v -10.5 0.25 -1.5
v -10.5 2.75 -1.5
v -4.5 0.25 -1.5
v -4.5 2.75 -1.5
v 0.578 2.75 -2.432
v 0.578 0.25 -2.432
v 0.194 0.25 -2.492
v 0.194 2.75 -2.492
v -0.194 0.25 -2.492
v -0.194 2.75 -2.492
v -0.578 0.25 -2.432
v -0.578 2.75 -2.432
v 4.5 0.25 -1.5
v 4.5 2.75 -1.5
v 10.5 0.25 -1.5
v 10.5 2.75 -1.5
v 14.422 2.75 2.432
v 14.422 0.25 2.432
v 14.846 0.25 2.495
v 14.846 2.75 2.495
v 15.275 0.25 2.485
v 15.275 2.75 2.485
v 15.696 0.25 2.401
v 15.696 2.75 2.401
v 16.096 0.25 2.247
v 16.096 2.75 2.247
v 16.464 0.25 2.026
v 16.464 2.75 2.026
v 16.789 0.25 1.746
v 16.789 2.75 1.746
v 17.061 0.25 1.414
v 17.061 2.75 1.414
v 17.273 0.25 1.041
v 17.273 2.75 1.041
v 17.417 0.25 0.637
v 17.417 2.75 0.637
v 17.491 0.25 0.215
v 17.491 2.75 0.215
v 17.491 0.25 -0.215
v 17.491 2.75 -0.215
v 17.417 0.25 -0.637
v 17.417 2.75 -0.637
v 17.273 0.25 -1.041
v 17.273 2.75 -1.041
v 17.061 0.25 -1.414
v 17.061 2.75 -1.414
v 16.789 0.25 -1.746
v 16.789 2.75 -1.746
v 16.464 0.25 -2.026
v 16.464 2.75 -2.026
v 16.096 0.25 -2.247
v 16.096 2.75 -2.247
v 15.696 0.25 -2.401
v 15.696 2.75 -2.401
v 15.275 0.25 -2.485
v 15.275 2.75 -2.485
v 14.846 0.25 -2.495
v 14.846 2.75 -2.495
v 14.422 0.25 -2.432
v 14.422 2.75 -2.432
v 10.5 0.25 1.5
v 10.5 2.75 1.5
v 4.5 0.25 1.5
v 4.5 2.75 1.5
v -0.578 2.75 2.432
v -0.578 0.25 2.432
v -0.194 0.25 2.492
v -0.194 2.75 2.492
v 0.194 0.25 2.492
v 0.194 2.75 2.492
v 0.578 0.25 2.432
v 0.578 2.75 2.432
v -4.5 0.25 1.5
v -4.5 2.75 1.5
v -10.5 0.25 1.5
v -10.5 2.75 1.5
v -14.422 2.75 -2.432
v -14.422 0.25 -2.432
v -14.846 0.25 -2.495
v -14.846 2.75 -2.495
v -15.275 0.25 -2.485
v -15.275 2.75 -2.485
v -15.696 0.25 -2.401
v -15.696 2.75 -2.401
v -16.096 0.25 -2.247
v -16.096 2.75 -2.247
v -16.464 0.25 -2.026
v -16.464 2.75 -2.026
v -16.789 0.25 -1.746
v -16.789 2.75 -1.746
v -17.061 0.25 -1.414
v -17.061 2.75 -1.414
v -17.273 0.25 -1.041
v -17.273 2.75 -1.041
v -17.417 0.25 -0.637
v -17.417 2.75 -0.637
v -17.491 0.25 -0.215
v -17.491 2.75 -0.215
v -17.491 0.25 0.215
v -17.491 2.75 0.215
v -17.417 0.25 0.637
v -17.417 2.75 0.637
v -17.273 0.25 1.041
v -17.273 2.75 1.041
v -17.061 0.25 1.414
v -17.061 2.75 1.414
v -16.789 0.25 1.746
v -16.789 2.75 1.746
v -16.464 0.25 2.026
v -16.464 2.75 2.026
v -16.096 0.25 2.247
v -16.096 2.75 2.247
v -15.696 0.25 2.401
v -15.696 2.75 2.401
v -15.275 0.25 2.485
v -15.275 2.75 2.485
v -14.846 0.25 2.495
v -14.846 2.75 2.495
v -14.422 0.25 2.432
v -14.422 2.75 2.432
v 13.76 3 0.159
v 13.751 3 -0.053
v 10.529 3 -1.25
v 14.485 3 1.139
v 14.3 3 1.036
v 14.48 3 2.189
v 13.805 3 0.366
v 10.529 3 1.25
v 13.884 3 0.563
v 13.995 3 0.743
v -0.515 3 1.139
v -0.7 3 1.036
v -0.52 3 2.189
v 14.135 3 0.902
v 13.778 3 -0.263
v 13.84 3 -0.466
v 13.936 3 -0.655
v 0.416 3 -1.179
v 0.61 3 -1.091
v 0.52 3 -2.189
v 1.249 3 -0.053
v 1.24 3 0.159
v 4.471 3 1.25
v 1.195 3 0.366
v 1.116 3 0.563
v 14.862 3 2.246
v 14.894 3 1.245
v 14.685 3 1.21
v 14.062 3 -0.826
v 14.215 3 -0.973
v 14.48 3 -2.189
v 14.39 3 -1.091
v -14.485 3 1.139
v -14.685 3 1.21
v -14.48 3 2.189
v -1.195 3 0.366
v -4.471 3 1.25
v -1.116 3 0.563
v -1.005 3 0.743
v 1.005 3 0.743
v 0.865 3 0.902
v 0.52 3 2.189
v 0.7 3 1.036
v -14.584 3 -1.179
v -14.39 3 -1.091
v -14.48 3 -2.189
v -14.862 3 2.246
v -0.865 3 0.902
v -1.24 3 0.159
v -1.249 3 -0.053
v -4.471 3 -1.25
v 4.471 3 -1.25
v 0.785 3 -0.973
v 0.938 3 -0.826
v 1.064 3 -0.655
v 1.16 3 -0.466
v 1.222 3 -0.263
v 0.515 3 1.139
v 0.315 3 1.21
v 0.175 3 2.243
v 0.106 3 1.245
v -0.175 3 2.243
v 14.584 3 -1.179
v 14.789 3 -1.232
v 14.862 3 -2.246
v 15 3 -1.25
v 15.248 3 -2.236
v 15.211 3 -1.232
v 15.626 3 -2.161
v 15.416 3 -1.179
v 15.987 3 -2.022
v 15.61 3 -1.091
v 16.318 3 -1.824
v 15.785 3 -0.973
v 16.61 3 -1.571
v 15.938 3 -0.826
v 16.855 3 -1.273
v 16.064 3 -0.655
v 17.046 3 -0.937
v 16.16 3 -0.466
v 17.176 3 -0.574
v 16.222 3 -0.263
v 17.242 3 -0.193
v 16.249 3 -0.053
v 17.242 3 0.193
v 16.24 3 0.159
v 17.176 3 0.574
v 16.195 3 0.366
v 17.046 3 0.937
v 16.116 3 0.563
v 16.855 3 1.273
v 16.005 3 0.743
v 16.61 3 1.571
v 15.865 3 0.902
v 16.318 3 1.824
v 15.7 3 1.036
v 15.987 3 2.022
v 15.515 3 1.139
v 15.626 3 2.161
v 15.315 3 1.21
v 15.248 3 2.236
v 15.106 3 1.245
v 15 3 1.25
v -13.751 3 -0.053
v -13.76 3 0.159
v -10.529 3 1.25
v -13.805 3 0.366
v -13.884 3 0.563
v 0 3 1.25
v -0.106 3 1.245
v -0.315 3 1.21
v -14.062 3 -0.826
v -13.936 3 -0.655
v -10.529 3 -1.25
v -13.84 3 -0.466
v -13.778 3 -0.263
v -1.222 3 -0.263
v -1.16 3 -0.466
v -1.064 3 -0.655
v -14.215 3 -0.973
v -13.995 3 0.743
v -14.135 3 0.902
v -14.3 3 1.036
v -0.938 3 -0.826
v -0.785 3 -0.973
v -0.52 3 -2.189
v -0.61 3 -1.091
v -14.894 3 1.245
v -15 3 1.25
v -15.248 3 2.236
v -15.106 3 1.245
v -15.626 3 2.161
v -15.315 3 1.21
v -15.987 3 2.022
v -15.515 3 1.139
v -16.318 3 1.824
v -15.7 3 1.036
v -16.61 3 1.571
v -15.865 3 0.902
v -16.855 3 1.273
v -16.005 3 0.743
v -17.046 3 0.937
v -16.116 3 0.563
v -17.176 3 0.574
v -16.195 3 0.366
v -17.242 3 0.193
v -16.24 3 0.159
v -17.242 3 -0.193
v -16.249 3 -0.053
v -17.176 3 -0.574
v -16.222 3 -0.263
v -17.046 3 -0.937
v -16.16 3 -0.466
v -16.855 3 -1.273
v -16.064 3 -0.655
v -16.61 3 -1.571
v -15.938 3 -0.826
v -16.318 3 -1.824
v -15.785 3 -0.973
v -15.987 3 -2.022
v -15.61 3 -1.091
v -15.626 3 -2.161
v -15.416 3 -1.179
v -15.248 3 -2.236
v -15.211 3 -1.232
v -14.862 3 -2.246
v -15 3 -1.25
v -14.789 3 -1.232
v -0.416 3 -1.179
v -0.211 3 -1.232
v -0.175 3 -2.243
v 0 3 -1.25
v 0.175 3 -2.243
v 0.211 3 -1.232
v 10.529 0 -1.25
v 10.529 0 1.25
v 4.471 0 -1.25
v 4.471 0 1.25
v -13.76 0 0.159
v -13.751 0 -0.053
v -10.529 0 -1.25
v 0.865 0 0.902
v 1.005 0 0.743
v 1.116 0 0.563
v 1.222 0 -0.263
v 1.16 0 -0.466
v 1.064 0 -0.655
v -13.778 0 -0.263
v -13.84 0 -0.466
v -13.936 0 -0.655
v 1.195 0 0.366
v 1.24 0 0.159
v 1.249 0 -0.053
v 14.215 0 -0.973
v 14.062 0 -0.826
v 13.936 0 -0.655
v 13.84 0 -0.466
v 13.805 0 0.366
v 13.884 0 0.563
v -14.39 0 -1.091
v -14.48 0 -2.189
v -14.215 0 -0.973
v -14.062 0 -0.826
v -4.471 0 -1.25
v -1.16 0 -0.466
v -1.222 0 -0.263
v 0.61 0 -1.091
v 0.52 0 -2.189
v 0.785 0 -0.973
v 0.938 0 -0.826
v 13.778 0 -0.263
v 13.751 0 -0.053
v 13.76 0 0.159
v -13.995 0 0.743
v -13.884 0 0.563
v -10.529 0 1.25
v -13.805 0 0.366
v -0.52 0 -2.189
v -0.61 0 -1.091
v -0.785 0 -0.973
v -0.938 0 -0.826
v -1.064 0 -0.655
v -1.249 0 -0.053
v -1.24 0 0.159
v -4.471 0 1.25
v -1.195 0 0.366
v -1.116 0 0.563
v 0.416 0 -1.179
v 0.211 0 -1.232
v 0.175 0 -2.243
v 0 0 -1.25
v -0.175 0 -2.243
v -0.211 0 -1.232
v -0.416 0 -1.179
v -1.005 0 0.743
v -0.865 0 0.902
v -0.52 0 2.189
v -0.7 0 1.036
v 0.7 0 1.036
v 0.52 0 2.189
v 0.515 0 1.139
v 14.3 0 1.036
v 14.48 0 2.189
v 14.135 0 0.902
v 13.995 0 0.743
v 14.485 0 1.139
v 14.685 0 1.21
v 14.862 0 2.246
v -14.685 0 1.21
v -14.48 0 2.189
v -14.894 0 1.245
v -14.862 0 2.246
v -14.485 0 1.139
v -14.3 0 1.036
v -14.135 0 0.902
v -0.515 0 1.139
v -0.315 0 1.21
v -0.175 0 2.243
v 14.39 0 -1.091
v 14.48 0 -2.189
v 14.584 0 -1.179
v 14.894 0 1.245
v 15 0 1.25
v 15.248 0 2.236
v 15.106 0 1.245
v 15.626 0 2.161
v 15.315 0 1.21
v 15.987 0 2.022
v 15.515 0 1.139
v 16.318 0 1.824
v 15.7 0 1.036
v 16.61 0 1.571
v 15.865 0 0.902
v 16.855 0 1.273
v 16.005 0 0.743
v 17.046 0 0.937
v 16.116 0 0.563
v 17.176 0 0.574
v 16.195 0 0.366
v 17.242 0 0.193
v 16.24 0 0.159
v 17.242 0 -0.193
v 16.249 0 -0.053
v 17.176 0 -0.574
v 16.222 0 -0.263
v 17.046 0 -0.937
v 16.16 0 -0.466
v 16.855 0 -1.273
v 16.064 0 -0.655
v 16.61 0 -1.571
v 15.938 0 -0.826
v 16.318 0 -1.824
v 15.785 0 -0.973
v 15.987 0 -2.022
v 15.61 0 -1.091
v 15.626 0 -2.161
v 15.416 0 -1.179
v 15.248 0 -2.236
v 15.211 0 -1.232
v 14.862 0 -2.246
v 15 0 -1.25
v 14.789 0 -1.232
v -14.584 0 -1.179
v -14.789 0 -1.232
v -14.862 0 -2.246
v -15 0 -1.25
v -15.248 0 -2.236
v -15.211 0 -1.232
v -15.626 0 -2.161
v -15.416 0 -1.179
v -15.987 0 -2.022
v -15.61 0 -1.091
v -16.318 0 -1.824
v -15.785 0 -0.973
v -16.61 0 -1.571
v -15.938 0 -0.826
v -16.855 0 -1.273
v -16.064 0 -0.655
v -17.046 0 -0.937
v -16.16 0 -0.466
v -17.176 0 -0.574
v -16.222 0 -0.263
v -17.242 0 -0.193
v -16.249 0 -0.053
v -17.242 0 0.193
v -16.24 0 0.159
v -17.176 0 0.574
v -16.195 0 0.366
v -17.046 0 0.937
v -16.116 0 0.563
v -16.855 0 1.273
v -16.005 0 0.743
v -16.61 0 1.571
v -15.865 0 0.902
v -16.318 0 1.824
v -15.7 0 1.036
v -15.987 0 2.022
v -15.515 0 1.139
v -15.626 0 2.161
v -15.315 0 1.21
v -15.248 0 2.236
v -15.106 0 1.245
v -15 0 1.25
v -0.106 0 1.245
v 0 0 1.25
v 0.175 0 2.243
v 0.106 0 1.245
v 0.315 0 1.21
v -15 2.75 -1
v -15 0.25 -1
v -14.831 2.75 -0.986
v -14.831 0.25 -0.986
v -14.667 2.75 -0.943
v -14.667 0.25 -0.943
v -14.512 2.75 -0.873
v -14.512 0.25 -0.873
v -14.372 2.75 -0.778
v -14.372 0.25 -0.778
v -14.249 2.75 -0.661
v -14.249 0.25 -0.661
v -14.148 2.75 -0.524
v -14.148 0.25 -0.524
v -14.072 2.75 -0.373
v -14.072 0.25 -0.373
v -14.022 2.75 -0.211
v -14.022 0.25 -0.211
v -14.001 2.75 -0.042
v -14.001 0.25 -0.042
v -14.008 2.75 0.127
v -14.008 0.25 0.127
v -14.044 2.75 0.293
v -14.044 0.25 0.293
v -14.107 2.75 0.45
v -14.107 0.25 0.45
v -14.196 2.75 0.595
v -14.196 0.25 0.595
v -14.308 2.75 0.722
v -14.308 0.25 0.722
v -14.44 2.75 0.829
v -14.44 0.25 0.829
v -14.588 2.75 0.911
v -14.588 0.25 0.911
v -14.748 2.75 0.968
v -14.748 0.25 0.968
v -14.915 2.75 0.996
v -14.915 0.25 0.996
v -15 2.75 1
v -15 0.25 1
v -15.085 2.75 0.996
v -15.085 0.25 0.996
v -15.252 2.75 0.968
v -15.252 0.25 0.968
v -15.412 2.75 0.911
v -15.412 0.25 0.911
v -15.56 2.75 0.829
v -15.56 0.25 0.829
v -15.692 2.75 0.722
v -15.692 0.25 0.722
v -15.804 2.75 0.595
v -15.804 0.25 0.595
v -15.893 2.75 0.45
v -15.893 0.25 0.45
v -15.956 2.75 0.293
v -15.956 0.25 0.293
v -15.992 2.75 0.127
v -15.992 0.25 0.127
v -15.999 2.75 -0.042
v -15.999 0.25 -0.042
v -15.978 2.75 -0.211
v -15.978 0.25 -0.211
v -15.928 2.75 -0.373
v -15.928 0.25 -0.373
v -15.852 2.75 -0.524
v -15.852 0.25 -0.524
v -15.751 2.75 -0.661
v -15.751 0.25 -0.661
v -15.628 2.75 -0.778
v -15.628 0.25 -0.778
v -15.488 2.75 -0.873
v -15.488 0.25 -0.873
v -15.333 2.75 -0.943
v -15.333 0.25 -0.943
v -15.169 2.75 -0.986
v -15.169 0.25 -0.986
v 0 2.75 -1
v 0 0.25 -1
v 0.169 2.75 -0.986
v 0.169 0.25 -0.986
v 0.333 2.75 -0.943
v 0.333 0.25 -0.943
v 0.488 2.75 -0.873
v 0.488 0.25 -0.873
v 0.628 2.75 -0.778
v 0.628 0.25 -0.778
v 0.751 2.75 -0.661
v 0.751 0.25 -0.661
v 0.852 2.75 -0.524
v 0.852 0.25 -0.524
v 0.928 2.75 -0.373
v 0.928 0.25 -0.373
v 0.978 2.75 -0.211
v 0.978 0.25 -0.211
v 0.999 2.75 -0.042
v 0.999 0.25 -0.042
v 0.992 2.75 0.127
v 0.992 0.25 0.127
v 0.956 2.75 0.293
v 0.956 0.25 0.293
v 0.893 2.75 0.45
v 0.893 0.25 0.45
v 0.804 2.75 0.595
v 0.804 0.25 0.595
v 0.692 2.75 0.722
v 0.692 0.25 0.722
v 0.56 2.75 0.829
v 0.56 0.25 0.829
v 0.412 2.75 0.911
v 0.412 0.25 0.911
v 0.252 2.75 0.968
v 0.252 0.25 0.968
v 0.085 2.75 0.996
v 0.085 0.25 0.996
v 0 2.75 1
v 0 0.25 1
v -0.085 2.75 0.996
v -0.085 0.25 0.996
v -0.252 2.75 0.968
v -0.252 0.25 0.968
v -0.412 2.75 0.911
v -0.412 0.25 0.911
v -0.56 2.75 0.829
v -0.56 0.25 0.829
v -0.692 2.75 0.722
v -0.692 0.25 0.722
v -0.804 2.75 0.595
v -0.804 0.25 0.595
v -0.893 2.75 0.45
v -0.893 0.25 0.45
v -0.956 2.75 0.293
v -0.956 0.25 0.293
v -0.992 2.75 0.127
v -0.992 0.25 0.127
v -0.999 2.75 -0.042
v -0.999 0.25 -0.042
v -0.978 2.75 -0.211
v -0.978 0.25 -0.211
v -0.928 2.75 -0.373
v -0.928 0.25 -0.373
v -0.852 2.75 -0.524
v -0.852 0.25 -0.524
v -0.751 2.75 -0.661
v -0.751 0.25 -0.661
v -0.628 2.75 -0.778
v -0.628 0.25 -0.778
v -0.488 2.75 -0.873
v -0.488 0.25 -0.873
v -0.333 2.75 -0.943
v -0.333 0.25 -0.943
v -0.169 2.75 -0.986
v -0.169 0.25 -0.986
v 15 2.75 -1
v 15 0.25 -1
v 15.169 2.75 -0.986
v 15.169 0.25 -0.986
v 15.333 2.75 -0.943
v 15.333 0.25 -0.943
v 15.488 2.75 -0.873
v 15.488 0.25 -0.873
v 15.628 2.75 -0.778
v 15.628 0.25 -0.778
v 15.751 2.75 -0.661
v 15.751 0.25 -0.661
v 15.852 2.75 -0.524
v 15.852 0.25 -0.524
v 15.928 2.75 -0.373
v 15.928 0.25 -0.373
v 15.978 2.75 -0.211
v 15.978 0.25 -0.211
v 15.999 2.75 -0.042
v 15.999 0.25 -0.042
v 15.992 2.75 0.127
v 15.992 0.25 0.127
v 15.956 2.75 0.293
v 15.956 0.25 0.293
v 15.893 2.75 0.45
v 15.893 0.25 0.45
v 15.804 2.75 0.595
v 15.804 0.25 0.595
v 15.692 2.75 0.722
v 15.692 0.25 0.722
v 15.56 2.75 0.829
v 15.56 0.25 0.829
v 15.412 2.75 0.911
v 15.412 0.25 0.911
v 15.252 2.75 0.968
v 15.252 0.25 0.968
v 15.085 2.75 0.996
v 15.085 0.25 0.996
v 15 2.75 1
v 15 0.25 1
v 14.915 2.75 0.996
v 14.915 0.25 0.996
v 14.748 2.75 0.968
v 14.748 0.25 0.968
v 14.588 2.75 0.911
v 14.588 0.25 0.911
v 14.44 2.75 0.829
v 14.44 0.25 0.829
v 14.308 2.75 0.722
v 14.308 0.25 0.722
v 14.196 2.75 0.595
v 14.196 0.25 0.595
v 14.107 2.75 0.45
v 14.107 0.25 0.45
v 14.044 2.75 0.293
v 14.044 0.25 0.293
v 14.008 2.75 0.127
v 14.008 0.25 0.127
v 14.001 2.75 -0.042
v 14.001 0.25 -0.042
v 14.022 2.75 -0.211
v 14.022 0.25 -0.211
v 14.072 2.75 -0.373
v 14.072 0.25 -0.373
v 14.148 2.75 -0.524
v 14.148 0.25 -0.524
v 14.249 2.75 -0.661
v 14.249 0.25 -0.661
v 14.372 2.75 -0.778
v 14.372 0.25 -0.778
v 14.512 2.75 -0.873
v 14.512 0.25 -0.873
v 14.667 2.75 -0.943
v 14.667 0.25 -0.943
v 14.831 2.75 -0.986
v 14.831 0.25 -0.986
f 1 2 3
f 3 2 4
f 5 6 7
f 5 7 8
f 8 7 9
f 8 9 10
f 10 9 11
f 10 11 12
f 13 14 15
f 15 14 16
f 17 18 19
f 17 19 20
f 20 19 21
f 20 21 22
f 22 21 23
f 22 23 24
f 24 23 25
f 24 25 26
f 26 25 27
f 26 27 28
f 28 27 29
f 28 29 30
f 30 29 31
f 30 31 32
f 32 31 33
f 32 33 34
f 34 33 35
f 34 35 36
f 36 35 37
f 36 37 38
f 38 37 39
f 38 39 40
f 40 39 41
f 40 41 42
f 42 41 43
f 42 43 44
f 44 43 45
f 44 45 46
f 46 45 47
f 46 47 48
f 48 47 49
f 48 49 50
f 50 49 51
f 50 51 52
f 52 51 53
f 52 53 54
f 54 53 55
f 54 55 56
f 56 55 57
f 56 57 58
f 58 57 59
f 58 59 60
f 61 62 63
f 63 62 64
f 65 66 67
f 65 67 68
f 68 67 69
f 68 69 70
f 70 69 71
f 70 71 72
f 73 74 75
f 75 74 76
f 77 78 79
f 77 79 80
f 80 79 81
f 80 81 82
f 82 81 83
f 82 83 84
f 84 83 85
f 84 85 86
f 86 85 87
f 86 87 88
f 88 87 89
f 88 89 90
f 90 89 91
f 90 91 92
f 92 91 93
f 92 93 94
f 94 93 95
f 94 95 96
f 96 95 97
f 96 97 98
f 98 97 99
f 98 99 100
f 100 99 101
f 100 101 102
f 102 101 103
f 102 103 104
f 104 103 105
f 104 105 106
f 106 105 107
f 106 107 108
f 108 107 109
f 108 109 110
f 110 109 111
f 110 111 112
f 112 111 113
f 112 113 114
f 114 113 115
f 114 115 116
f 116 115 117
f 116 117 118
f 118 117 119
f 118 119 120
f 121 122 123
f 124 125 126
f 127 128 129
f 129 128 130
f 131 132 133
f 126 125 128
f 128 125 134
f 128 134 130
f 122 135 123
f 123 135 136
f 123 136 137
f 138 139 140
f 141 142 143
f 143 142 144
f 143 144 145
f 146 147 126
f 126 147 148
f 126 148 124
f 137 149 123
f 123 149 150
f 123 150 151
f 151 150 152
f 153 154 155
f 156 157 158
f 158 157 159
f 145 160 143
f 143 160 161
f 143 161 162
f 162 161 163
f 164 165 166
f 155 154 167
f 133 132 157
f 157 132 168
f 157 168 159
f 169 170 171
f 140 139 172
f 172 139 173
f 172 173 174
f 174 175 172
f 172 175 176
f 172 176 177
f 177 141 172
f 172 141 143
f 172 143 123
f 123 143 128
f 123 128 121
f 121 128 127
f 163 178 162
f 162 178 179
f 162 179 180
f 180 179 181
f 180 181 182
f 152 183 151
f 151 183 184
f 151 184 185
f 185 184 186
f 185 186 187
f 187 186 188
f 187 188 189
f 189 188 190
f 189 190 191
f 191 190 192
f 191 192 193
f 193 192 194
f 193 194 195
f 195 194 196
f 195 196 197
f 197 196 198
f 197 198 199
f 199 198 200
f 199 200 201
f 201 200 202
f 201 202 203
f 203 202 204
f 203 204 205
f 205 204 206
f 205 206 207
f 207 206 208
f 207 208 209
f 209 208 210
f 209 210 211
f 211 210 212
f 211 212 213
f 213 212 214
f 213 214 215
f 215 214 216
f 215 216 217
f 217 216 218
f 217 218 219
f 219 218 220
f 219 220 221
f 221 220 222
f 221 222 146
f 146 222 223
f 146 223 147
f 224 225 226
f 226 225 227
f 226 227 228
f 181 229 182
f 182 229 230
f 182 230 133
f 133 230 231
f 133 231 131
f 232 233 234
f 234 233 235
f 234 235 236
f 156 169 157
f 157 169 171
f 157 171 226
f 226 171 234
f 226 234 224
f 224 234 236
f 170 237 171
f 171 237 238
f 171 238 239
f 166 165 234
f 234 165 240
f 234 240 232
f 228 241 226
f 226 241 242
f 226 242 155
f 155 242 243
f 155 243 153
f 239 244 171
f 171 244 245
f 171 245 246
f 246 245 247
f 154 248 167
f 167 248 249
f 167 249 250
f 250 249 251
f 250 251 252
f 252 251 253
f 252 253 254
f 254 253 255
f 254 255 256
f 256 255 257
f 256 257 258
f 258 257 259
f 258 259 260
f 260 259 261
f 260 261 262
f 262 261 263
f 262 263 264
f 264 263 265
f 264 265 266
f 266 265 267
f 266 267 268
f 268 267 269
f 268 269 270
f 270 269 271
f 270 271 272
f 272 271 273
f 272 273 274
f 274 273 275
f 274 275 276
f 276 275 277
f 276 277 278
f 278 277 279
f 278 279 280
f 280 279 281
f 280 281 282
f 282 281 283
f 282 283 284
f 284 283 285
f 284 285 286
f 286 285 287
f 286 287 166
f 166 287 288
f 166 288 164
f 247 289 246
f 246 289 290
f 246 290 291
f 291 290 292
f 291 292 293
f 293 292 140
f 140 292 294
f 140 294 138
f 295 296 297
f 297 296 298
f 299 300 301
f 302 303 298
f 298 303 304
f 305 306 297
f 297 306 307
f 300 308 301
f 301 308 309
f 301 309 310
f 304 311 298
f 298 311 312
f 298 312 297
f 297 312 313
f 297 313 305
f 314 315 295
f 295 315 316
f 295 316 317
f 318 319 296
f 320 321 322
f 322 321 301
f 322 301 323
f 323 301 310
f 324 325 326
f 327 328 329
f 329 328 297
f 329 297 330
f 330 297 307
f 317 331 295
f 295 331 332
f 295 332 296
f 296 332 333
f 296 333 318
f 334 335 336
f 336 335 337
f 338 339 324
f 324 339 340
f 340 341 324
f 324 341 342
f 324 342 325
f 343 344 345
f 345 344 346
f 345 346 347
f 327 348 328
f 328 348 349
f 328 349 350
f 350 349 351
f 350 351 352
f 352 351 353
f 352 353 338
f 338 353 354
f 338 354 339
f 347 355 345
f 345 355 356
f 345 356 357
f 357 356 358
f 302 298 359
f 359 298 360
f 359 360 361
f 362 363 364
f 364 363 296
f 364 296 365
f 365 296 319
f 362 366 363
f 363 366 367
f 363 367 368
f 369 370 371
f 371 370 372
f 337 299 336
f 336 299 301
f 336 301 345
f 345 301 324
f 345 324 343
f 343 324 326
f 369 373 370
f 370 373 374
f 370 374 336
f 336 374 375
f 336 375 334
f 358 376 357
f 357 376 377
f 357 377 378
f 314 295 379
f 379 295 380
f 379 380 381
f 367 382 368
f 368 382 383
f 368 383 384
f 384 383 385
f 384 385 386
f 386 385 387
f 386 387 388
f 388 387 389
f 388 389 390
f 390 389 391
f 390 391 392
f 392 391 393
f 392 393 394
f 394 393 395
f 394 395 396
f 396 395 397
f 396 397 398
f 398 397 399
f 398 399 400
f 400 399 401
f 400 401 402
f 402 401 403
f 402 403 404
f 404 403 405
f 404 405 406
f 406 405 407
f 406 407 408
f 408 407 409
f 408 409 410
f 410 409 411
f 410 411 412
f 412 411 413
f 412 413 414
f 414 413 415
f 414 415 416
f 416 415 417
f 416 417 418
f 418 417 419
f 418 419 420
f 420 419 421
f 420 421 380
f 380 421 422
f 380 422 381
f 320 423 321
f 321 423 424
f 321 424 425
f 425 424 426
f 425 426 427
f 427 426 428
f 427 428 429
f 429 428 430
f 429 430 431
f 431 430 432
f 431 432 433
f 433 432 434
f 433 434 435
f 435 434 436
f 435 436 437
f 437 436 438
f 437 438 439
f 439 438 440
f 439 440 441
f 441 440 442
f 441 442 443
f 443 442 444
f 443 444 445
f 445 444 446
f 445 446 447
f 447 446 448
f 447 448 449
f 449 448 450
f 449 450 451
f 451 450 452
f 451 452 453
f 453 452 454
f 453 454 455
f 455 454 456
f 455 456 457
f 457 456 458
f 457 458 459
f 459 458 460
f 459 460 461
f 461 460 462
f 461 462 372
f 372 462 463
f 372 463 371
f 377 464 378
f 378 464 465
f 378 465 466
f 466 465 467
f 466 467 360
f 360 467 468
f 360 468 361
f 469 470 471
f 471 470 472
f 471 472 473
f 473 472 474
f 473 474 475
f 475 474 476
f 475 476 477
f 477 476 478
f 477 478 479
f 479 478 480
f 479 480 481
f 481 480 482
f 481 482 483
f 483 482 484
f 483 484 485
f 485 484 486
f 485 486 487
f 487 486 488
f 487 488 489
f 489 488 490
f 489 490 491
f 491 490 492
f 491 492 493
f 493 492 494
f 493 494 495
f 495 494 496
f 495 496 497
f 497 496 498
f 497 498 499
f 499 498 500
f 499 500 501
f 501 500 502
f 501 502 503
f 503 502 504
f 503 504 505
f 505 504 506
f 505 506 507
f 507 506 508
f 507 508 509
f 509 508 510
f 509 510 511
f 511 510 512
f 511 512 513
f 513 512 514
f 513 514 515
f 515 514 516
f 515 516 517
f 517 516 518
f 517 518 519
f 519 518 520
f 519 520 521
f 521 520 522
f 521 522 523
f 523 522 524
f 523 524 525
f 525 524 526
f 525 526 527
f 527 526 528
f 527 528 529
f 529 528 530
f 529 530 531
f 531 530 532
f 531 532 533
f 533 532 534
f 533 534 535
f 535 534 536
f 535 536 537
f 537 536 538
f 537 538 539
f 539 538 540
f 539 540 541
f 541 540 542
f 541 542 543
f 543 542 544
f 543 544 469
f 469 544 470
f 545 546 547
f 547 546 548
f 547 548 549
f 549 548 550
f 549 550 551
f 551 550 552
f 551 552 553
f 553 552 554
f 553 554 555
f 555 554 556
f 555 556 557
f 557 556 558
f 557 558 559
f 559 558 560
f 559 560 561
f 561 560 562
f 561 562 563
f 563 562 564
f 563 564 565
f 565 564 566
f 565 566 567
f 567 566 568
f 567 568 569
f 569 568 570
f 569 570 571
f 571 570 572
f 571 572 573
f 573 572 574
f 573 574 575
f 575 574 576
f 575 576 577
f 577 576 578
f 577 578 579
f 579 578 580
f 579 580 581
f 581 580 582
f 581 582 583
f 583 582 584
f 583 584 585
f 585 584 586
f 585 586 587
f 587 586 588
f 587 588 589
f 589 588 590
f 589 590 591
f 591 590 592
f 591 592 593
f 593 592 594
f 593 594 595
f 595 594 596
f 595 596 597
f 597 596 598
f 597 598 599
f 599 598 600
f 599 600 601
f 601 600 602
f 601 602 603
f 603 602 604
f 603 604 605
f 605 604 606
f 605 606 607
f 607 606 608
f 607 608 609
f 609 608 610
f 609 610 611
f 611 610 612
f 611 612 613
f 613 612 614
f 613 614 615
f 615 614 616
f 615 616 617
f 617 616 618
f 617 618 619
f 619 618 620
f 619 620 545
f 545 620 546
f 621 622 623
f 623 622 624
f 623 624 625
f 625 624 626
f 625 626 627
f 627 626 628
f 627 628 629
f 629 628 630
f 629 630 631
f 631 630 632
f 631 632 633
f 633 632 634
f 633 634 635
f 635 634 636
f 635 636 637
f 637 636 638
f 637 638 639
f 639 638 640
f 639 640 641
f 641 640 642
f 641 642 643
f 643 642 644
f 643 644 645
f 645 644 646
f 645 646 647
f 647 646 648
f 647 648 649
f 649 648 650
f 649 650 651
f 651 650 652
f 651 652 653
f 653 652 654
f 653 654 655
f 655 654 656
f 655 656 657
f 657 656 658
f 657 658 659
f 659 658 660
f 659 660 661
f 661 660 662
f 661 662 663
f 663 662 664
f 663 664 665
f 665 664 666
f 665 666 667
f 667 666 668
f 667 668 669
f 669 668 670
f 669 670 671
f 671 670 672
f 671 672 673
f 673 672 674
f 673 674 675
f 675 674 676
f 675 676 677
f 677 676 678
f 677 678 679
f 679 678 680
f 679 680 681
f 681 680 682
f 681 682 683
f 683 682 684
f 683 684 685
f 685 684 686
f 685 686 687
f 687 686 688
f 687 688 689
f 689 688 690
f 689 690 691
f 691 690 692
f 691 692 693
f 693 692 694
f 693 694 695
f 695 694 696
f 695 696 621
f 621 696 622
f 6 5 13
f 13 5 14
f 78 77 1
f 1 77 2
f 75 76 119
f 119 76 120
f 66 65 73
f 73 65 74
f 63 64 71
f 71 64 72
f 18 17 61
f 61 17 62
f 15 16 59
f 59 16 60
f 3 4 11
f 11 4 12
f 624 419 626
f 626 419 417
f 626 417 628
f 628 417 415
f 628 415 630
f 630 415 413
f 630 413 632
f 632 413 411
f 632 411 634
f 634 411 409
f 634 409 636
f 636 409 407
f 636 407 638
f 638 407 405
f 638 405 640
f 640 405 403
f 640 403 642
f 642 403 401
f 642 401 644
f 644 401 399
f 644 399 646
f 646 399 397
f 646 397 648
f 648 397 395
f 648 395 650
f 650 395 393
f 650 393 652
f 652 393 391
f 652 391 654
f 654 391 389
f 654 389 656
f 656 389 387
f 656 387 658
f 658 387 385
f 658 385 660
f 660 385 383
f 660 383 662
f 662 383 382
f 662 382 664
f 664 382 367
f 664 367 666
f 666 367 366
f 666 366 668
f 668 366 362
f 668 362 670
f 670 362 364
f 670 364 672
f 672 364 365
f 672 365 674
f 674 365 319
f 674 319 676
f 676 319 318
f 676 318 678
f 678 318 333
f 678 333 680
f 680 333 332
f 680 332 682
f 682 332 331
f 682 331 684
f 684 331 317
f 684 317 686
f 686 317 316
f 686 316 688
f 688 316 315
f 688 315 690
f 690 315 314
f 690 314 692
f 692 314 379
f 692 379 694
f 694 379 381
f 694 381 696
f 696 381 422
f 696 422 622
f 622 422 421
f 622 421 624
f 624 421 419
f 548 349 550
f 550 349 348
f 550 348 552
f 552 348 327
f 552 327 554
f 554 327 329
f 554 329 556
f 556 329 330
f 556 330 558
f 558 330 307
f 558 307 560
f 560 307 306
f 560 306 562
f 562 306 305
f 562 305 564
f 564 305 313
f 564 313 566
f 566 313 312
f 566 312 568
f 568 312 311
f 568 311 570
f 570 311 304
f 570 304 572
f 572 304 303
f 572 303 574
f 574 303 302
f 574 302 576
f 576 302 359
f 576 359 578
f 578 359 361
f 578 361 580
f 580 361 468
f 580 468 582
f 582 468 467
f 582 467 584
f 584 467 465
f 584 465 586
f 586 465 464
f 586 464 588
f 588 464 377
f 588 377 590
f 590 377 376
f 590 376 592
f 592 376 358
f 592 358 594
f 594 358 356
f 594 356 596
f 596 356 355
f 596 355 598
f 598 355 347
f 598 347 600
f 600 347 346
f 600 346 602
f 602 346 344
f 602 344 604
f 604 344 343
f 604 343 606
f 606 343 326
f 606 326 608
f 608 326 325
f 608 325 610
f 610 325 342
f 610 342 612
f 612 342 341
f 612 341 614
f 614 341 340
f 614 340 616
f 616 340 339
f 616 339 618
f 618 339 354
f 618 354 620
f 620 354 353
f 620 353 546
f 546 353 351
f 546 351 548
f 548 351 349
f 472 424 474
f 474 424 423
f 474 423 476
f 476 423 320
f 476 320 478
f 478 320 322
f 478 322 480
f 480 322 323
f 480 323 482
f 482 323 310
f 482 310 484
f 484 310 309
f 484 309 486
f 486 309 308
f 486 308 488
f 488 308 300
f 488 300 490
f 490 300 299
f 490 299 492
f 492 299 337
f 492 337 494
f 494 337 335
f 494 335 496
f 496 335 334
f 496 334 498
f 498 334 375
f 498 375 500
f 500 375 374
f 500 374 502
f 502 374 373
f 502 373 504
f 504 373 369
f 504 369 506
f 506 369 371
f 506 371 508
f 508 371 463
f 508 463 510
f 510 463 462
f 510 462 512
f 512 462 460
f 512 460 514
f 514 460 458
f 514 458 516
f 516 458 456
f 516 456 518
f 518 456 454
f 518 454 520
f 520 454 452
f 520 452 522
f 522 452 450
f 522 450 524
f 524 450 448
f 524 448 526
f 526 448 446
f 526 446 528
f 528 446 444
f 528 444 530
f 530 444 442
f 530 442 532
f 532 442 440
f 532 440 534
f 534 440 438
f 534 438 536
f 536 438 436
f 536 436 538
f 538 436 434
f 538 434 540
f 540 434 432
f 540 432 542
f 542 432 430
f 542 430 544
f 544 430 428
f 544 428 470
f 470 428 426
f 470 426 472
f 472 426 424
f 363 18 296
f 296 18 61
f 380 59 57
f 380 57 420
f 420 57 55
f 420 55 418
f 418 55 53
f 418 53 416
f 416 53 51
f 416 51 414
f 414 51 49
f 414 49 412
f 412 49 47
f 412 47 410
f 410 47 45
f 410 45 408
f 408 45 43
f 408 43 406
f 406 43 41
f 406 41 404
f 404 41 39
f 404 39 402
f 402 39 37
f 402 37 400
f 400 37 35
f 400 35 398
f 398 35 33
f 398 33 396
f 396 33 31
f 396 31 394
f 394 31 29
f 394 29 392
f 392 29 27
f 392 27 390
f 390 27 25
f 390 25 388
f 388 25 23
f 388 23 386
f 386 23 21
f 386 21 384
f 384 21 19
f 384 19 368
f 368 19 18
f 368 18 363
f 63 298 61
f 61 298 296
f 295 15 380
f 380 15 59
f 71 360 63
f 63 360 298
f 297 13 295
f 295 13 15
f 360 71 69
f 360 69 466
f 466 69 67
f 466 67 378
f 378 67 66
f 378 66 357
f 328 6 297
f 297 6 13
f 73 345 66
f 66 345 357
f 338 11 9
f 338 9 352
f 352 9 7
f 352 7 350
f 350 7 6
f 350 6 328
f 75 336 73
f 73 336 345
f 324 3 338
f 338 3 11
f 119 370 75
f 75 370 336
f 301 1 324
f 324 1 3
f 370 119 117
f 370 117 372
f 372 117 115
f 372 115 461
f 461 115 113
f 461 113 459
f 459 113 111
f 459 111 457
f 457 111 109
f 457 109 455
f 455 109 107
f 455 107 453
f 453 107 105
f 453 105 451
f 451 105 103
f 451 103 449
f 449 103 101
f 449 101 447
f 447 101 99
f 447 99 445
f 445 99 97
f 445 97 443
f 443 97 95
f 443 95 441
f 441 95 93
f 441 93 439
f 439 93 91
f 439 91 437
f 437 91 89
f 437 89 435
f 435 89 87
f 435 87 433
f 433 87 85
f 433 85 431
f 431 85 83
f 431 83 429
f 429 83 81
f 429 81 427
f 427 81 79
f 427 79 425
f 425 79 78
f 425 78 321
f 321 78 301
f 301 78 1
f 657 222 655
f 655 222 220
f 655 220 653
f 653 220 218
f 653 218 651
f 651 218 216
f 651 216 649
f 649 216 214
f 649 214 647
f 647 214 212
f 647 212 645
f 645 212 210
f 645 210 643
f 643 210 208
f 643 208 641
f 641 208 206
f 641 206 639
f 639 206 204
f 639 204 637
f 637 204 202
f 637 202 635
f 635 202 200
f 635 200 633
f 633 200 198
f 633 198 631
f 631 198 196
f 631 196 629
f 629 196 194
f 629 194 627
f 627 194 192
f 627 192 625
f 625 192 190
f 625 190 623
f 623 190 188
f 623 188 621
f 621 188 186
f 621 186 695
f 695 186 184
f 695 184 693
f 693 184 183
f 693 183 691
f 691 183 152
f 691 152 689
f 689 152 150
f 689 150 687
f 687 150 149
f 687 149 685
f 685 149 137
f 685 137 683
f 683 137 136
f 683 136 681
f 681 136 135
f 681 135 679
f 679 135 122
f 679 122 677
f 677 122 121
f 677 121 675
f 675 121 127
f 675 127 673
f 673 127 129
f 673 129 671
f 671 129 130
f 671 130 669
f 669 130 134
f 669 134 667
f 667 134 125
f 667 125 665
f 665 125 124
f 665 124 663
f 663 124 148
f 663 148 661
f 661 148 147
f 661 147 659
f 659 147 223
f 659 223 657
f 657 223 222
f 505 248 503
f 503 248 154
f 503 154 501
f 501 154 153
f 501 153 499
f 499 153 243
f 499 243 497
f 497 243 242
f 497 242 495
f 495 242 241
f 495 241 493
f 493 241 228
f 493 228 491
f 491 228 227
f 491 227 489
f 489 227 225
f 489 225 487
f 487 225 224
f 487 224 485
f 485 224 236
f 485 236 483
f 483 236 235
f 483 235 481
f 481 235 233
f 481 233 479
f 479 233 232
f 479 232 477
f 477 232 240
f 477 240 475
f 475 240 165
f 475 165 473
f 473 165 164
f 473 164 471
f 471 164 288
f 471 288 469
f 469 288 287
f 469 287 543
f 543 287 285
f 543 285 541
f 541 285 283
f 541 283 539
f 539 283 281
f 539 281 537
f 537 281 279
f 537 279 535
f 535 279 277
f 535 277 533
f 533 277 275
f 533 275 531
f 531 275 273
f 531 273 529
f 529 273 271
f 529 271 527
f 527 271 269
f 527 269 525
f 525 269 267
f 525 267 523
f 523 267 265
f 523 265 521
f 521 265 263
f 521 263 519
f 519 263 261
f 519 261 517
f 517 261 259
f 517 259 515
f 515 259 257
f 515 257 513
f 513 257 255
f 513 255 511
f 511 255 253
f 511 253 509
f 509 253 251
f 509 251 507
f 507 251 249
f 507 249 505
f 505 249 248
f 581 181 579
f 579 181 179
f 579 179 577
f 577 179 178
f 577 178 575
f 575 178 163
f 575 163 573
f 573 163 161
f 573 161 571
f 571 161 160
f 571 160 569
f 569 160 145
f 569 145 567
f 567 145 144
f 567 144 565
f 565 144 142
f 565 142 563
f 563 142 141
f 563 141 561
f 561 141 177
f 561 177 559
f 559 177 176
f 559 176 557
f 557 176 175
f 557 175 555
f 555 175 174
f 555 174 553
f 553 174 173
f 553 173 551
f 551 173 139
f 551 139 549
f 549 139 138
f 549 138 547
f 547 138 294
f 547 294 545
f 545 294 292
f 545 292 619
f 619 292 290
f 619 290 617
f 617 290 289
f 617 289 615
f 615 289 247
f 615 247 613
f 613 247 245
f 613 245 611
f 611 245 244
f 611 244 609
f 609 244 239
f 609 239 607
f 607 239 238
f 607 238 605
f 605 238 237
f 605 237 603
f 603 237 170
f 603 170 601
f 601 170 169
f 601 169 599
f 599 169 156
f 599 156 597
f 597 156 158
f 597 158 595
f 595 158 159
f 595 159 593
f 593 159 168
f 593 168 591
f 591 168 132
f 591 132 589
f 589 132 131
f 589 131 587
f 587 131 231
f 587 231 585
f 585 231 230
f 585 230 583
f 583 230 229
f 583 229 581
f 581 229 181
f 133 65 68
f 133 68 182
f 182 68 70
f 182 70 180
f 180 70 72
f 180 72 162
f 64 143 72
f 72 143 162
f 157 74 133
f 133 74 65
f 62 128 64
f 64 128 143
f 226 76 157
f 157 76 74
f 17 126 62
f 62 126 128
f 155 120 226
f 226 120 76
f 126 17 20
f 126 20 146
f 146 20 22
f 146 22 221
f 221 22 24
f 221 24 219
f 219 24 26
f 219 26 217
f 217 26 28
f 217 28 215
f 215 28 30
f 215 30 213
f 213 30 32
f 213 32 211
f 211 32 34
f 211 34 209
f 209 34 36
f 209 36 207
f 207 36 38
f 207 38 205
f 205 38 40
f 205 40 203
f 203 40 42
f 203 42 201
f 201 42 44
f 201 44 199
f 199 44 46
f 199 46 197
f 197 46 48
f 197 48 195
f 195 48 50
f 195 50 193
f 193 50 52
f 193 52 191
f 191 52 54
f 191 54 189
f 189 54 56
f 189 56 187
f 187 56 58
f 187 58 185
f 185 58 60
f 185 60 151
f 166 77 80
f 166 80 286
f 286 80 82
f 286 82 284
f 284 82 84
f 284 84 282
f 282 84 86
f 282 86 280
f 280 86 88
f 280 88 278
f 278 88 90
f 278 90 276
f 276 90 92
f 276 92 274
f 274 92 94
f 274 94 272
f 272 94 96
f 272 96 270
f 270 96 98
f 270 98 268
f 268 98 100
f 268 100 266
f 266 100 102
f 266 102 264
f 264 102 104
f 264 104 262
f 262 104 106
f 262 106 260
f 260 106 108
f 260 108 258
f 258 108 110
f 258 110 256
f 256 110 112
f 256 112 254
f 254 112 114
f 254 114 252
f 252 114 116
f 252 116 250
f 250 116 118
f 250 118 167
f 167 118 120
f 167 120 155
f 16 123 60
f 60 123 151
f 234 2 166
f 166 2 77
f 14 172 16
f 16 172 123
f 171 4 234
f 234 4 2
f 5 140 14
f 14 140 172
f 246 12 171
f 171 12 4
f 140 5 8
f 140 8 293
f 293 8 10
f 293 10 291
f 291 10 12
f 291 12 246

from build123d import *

# Parameters (mm, degrees)
SKETCH_1_R      = 1
EXTRUDE_1_DEPTH = 3
EXTRUDE_2_DEPTH = 3
CHAMFER_1_SIZE  = 0.25


with BuildPart() as part:
    # 草图1 → 凸台-拉伸1 (new body)
    with BuildSketch(Plane(origin=(0, 0, 0), x_dir=(1, 0, 0), z_dir=(0, 1, 0))):
        with BuildLine():
            Line((-13, 1.5), (-2, 1.5))
            ThreePointArc((-2, 1.5), (0, 2.5), (2, 1.5))
            Line((2, 1.5), (13, 1.5))
            ThreePointArc((13, 1.5), (17.5, 0), (13, -1.5))
            Line((13, -1.5), (2, -1.5))
            ThreePointArc((2, -1.5), (0, -2.5), (-2, -1.5))
            Line((-2, -1.5), (-13, -1.5))
            ThreePointArc((-13, -1.5), (-17.5, 0), (-13, 1.5))
        make_face()
        with Locations(Location((-15, 0, 0), (0, 0, 270))):
            Circle(SKETCH_1_R, mode=Mode.SUBTRACT)
        with Locations(Location((0, 0, 0), (0, 0, 270))):
            Circle(SKETCH_1_R, mode=Mode.SUBTRACT)
        with Locations(Location((15, 0, 0), (0, 0, 270))):
            Circle(SKETCH_1_R, mode=Mode.SUBTRACT)
    extrude(amount=EXTRUDE_1_DEPTH)

    # 草图2 → 凸台-拉伸2 (add)
    with BuildSketch(Plane(origin=(0, 0, 0), x_dir=(1, 0, 0), z_dir=(0, 1, 0))):
        with BuildLine():
            Line((4.5, 1.5), (0.578145188, 2.432231104))
            ThreePointArc((0.578145188, 2.432231104), (1.370755945, 2.090700395), (2, 1.5))
            Line((2, 1.5), (4.5, 1.5))
        make_face()
        with BuildLine():
            Line((4.5, -1.5), (0.578145188, -2.432231104))
            ThreePointArc((0.578145188, -2.432231104), (1.370755945, -2.090700395), (2, -1.5))
            Line((2, -1.5), (4.5, -1.5))
        make_face()
        with BuildLine():
            Line((10.5, 1.5), (14.421854812, 2.432231104))
            ThreePointArc((14.421854812, 2.432231104), (13.629244055, 2.090700395), (13, 1.5))
            Line((13, 1.5), (10.5, 1.5))
        make_face()
        with BuildLine():
            Line((10.5, -1.5), (14.421854812, -2.432231104))
            ThreePointArc((14.421854812, -2.432231104), (13.629244055, -2.090700395), (13, -1.5))
            Line((13, -1.5), (10.5, -1.5))
        make_face()
        with BuildLine():
            Line((-4.5, 1.5), (-2, 1.5))
            ThreePointArc((-2, 1.5), (-1.370755945, 2.090700395), (-0.578145188, 2.432231104))
            Line((-0.578145188, 2.432231104), (-4.5, 1.5))
        make_face()
        with BuildLine():
            Line((-10.5, -1.5), (-13, -1.5))
            ThreePointArc((-13, -1.5), (-13.629244055, -2.090700395), (-14.421854812, -2.432231104))
            Line((-14.421854812, -2.432231104), (-10.5, -1.5))
        make_face()
        with BuildLine():
            Line((-13, 1.5), (-10.5, 1.5))
            Line((-10.5, 1.5), (-14.421854812, 2.432231104))
            ThreePointArc((-14.421854812, 2.432231104), (-13.629244055, 2.090700395), (-13, 1.5))
        make_face()
        with BuildLine():
            Line((-2, -1.5), (-4.5, -1.5))
            Line((-4.5, -1.5), (-0.578145188, -2.432231104))
            ThreePointArc((-0.578145188, -2.432231104), (-1.370755945, -2.090700395), (-2, -1.5))
        make_face()
    extrude(amount=EXTRUDE_2_DEPTH)

    # 倒角1
    chamfer_1_edges = [part.edges().sort_by_distance(p)[0] for p in [
        (-7.5, 0, -1.5),
        (-7.5, 3, -1.5),
        (-2.539072594, 0, -1.966115552),
        (-2.539072594, 3, -1.966115552),
        (-15, 0, -1),
        (-15, 3, -1),
        (0, 0, -1),
        (0, 3, -1),
        (15, 0, -1),
        (15, 3, -1),
        (0, 0, -2.5),
        (0, 3, -2.5),
        (2.539072594, 0, -1.966115552),
        (2.539072594, 3, -1.966115552),
        (-17.5, 0, 0),
        (-17.5, 3, 0),
        (-12.460927406, 0, -1.966115552),
        (-12.460927406, 3, -1.966115552),
        (-7.5, 0, 1.5),
        (-7.5, 3, 1.5),
        (-12.460927406, 0, 1.966115552),
        (-12.460927406, 3, 1.966115552),
        (0, 0, 2.5),
        (0, 3, 2.5),
        (-2.539072594, 0, 1.966115552),
        (-2.539072594, 3, 1.966115552),
        (7.5, 0, 1.5),
        (7.5, 3, 1.5),
        (2.539072594, 0, 1.966115552),
        (2.539072594, 3, 1.966115552),
        (17.5, 0, 0),
        (17.5, 3, 0),
        (12.460927406, 0, 1.966115552),
        (12.460927406, 3, 1.966115552),
        (7.5, 0, -1.5),
        (7.5, 3, -1.5),
        (12.460927406, 0, -1.966115552),
        (12.460927406, 3, -1.966115552),
    ]]
    chamfer(chamfer_1_edges, length=CHAMFER_1_SIZE)


solid = part.part
